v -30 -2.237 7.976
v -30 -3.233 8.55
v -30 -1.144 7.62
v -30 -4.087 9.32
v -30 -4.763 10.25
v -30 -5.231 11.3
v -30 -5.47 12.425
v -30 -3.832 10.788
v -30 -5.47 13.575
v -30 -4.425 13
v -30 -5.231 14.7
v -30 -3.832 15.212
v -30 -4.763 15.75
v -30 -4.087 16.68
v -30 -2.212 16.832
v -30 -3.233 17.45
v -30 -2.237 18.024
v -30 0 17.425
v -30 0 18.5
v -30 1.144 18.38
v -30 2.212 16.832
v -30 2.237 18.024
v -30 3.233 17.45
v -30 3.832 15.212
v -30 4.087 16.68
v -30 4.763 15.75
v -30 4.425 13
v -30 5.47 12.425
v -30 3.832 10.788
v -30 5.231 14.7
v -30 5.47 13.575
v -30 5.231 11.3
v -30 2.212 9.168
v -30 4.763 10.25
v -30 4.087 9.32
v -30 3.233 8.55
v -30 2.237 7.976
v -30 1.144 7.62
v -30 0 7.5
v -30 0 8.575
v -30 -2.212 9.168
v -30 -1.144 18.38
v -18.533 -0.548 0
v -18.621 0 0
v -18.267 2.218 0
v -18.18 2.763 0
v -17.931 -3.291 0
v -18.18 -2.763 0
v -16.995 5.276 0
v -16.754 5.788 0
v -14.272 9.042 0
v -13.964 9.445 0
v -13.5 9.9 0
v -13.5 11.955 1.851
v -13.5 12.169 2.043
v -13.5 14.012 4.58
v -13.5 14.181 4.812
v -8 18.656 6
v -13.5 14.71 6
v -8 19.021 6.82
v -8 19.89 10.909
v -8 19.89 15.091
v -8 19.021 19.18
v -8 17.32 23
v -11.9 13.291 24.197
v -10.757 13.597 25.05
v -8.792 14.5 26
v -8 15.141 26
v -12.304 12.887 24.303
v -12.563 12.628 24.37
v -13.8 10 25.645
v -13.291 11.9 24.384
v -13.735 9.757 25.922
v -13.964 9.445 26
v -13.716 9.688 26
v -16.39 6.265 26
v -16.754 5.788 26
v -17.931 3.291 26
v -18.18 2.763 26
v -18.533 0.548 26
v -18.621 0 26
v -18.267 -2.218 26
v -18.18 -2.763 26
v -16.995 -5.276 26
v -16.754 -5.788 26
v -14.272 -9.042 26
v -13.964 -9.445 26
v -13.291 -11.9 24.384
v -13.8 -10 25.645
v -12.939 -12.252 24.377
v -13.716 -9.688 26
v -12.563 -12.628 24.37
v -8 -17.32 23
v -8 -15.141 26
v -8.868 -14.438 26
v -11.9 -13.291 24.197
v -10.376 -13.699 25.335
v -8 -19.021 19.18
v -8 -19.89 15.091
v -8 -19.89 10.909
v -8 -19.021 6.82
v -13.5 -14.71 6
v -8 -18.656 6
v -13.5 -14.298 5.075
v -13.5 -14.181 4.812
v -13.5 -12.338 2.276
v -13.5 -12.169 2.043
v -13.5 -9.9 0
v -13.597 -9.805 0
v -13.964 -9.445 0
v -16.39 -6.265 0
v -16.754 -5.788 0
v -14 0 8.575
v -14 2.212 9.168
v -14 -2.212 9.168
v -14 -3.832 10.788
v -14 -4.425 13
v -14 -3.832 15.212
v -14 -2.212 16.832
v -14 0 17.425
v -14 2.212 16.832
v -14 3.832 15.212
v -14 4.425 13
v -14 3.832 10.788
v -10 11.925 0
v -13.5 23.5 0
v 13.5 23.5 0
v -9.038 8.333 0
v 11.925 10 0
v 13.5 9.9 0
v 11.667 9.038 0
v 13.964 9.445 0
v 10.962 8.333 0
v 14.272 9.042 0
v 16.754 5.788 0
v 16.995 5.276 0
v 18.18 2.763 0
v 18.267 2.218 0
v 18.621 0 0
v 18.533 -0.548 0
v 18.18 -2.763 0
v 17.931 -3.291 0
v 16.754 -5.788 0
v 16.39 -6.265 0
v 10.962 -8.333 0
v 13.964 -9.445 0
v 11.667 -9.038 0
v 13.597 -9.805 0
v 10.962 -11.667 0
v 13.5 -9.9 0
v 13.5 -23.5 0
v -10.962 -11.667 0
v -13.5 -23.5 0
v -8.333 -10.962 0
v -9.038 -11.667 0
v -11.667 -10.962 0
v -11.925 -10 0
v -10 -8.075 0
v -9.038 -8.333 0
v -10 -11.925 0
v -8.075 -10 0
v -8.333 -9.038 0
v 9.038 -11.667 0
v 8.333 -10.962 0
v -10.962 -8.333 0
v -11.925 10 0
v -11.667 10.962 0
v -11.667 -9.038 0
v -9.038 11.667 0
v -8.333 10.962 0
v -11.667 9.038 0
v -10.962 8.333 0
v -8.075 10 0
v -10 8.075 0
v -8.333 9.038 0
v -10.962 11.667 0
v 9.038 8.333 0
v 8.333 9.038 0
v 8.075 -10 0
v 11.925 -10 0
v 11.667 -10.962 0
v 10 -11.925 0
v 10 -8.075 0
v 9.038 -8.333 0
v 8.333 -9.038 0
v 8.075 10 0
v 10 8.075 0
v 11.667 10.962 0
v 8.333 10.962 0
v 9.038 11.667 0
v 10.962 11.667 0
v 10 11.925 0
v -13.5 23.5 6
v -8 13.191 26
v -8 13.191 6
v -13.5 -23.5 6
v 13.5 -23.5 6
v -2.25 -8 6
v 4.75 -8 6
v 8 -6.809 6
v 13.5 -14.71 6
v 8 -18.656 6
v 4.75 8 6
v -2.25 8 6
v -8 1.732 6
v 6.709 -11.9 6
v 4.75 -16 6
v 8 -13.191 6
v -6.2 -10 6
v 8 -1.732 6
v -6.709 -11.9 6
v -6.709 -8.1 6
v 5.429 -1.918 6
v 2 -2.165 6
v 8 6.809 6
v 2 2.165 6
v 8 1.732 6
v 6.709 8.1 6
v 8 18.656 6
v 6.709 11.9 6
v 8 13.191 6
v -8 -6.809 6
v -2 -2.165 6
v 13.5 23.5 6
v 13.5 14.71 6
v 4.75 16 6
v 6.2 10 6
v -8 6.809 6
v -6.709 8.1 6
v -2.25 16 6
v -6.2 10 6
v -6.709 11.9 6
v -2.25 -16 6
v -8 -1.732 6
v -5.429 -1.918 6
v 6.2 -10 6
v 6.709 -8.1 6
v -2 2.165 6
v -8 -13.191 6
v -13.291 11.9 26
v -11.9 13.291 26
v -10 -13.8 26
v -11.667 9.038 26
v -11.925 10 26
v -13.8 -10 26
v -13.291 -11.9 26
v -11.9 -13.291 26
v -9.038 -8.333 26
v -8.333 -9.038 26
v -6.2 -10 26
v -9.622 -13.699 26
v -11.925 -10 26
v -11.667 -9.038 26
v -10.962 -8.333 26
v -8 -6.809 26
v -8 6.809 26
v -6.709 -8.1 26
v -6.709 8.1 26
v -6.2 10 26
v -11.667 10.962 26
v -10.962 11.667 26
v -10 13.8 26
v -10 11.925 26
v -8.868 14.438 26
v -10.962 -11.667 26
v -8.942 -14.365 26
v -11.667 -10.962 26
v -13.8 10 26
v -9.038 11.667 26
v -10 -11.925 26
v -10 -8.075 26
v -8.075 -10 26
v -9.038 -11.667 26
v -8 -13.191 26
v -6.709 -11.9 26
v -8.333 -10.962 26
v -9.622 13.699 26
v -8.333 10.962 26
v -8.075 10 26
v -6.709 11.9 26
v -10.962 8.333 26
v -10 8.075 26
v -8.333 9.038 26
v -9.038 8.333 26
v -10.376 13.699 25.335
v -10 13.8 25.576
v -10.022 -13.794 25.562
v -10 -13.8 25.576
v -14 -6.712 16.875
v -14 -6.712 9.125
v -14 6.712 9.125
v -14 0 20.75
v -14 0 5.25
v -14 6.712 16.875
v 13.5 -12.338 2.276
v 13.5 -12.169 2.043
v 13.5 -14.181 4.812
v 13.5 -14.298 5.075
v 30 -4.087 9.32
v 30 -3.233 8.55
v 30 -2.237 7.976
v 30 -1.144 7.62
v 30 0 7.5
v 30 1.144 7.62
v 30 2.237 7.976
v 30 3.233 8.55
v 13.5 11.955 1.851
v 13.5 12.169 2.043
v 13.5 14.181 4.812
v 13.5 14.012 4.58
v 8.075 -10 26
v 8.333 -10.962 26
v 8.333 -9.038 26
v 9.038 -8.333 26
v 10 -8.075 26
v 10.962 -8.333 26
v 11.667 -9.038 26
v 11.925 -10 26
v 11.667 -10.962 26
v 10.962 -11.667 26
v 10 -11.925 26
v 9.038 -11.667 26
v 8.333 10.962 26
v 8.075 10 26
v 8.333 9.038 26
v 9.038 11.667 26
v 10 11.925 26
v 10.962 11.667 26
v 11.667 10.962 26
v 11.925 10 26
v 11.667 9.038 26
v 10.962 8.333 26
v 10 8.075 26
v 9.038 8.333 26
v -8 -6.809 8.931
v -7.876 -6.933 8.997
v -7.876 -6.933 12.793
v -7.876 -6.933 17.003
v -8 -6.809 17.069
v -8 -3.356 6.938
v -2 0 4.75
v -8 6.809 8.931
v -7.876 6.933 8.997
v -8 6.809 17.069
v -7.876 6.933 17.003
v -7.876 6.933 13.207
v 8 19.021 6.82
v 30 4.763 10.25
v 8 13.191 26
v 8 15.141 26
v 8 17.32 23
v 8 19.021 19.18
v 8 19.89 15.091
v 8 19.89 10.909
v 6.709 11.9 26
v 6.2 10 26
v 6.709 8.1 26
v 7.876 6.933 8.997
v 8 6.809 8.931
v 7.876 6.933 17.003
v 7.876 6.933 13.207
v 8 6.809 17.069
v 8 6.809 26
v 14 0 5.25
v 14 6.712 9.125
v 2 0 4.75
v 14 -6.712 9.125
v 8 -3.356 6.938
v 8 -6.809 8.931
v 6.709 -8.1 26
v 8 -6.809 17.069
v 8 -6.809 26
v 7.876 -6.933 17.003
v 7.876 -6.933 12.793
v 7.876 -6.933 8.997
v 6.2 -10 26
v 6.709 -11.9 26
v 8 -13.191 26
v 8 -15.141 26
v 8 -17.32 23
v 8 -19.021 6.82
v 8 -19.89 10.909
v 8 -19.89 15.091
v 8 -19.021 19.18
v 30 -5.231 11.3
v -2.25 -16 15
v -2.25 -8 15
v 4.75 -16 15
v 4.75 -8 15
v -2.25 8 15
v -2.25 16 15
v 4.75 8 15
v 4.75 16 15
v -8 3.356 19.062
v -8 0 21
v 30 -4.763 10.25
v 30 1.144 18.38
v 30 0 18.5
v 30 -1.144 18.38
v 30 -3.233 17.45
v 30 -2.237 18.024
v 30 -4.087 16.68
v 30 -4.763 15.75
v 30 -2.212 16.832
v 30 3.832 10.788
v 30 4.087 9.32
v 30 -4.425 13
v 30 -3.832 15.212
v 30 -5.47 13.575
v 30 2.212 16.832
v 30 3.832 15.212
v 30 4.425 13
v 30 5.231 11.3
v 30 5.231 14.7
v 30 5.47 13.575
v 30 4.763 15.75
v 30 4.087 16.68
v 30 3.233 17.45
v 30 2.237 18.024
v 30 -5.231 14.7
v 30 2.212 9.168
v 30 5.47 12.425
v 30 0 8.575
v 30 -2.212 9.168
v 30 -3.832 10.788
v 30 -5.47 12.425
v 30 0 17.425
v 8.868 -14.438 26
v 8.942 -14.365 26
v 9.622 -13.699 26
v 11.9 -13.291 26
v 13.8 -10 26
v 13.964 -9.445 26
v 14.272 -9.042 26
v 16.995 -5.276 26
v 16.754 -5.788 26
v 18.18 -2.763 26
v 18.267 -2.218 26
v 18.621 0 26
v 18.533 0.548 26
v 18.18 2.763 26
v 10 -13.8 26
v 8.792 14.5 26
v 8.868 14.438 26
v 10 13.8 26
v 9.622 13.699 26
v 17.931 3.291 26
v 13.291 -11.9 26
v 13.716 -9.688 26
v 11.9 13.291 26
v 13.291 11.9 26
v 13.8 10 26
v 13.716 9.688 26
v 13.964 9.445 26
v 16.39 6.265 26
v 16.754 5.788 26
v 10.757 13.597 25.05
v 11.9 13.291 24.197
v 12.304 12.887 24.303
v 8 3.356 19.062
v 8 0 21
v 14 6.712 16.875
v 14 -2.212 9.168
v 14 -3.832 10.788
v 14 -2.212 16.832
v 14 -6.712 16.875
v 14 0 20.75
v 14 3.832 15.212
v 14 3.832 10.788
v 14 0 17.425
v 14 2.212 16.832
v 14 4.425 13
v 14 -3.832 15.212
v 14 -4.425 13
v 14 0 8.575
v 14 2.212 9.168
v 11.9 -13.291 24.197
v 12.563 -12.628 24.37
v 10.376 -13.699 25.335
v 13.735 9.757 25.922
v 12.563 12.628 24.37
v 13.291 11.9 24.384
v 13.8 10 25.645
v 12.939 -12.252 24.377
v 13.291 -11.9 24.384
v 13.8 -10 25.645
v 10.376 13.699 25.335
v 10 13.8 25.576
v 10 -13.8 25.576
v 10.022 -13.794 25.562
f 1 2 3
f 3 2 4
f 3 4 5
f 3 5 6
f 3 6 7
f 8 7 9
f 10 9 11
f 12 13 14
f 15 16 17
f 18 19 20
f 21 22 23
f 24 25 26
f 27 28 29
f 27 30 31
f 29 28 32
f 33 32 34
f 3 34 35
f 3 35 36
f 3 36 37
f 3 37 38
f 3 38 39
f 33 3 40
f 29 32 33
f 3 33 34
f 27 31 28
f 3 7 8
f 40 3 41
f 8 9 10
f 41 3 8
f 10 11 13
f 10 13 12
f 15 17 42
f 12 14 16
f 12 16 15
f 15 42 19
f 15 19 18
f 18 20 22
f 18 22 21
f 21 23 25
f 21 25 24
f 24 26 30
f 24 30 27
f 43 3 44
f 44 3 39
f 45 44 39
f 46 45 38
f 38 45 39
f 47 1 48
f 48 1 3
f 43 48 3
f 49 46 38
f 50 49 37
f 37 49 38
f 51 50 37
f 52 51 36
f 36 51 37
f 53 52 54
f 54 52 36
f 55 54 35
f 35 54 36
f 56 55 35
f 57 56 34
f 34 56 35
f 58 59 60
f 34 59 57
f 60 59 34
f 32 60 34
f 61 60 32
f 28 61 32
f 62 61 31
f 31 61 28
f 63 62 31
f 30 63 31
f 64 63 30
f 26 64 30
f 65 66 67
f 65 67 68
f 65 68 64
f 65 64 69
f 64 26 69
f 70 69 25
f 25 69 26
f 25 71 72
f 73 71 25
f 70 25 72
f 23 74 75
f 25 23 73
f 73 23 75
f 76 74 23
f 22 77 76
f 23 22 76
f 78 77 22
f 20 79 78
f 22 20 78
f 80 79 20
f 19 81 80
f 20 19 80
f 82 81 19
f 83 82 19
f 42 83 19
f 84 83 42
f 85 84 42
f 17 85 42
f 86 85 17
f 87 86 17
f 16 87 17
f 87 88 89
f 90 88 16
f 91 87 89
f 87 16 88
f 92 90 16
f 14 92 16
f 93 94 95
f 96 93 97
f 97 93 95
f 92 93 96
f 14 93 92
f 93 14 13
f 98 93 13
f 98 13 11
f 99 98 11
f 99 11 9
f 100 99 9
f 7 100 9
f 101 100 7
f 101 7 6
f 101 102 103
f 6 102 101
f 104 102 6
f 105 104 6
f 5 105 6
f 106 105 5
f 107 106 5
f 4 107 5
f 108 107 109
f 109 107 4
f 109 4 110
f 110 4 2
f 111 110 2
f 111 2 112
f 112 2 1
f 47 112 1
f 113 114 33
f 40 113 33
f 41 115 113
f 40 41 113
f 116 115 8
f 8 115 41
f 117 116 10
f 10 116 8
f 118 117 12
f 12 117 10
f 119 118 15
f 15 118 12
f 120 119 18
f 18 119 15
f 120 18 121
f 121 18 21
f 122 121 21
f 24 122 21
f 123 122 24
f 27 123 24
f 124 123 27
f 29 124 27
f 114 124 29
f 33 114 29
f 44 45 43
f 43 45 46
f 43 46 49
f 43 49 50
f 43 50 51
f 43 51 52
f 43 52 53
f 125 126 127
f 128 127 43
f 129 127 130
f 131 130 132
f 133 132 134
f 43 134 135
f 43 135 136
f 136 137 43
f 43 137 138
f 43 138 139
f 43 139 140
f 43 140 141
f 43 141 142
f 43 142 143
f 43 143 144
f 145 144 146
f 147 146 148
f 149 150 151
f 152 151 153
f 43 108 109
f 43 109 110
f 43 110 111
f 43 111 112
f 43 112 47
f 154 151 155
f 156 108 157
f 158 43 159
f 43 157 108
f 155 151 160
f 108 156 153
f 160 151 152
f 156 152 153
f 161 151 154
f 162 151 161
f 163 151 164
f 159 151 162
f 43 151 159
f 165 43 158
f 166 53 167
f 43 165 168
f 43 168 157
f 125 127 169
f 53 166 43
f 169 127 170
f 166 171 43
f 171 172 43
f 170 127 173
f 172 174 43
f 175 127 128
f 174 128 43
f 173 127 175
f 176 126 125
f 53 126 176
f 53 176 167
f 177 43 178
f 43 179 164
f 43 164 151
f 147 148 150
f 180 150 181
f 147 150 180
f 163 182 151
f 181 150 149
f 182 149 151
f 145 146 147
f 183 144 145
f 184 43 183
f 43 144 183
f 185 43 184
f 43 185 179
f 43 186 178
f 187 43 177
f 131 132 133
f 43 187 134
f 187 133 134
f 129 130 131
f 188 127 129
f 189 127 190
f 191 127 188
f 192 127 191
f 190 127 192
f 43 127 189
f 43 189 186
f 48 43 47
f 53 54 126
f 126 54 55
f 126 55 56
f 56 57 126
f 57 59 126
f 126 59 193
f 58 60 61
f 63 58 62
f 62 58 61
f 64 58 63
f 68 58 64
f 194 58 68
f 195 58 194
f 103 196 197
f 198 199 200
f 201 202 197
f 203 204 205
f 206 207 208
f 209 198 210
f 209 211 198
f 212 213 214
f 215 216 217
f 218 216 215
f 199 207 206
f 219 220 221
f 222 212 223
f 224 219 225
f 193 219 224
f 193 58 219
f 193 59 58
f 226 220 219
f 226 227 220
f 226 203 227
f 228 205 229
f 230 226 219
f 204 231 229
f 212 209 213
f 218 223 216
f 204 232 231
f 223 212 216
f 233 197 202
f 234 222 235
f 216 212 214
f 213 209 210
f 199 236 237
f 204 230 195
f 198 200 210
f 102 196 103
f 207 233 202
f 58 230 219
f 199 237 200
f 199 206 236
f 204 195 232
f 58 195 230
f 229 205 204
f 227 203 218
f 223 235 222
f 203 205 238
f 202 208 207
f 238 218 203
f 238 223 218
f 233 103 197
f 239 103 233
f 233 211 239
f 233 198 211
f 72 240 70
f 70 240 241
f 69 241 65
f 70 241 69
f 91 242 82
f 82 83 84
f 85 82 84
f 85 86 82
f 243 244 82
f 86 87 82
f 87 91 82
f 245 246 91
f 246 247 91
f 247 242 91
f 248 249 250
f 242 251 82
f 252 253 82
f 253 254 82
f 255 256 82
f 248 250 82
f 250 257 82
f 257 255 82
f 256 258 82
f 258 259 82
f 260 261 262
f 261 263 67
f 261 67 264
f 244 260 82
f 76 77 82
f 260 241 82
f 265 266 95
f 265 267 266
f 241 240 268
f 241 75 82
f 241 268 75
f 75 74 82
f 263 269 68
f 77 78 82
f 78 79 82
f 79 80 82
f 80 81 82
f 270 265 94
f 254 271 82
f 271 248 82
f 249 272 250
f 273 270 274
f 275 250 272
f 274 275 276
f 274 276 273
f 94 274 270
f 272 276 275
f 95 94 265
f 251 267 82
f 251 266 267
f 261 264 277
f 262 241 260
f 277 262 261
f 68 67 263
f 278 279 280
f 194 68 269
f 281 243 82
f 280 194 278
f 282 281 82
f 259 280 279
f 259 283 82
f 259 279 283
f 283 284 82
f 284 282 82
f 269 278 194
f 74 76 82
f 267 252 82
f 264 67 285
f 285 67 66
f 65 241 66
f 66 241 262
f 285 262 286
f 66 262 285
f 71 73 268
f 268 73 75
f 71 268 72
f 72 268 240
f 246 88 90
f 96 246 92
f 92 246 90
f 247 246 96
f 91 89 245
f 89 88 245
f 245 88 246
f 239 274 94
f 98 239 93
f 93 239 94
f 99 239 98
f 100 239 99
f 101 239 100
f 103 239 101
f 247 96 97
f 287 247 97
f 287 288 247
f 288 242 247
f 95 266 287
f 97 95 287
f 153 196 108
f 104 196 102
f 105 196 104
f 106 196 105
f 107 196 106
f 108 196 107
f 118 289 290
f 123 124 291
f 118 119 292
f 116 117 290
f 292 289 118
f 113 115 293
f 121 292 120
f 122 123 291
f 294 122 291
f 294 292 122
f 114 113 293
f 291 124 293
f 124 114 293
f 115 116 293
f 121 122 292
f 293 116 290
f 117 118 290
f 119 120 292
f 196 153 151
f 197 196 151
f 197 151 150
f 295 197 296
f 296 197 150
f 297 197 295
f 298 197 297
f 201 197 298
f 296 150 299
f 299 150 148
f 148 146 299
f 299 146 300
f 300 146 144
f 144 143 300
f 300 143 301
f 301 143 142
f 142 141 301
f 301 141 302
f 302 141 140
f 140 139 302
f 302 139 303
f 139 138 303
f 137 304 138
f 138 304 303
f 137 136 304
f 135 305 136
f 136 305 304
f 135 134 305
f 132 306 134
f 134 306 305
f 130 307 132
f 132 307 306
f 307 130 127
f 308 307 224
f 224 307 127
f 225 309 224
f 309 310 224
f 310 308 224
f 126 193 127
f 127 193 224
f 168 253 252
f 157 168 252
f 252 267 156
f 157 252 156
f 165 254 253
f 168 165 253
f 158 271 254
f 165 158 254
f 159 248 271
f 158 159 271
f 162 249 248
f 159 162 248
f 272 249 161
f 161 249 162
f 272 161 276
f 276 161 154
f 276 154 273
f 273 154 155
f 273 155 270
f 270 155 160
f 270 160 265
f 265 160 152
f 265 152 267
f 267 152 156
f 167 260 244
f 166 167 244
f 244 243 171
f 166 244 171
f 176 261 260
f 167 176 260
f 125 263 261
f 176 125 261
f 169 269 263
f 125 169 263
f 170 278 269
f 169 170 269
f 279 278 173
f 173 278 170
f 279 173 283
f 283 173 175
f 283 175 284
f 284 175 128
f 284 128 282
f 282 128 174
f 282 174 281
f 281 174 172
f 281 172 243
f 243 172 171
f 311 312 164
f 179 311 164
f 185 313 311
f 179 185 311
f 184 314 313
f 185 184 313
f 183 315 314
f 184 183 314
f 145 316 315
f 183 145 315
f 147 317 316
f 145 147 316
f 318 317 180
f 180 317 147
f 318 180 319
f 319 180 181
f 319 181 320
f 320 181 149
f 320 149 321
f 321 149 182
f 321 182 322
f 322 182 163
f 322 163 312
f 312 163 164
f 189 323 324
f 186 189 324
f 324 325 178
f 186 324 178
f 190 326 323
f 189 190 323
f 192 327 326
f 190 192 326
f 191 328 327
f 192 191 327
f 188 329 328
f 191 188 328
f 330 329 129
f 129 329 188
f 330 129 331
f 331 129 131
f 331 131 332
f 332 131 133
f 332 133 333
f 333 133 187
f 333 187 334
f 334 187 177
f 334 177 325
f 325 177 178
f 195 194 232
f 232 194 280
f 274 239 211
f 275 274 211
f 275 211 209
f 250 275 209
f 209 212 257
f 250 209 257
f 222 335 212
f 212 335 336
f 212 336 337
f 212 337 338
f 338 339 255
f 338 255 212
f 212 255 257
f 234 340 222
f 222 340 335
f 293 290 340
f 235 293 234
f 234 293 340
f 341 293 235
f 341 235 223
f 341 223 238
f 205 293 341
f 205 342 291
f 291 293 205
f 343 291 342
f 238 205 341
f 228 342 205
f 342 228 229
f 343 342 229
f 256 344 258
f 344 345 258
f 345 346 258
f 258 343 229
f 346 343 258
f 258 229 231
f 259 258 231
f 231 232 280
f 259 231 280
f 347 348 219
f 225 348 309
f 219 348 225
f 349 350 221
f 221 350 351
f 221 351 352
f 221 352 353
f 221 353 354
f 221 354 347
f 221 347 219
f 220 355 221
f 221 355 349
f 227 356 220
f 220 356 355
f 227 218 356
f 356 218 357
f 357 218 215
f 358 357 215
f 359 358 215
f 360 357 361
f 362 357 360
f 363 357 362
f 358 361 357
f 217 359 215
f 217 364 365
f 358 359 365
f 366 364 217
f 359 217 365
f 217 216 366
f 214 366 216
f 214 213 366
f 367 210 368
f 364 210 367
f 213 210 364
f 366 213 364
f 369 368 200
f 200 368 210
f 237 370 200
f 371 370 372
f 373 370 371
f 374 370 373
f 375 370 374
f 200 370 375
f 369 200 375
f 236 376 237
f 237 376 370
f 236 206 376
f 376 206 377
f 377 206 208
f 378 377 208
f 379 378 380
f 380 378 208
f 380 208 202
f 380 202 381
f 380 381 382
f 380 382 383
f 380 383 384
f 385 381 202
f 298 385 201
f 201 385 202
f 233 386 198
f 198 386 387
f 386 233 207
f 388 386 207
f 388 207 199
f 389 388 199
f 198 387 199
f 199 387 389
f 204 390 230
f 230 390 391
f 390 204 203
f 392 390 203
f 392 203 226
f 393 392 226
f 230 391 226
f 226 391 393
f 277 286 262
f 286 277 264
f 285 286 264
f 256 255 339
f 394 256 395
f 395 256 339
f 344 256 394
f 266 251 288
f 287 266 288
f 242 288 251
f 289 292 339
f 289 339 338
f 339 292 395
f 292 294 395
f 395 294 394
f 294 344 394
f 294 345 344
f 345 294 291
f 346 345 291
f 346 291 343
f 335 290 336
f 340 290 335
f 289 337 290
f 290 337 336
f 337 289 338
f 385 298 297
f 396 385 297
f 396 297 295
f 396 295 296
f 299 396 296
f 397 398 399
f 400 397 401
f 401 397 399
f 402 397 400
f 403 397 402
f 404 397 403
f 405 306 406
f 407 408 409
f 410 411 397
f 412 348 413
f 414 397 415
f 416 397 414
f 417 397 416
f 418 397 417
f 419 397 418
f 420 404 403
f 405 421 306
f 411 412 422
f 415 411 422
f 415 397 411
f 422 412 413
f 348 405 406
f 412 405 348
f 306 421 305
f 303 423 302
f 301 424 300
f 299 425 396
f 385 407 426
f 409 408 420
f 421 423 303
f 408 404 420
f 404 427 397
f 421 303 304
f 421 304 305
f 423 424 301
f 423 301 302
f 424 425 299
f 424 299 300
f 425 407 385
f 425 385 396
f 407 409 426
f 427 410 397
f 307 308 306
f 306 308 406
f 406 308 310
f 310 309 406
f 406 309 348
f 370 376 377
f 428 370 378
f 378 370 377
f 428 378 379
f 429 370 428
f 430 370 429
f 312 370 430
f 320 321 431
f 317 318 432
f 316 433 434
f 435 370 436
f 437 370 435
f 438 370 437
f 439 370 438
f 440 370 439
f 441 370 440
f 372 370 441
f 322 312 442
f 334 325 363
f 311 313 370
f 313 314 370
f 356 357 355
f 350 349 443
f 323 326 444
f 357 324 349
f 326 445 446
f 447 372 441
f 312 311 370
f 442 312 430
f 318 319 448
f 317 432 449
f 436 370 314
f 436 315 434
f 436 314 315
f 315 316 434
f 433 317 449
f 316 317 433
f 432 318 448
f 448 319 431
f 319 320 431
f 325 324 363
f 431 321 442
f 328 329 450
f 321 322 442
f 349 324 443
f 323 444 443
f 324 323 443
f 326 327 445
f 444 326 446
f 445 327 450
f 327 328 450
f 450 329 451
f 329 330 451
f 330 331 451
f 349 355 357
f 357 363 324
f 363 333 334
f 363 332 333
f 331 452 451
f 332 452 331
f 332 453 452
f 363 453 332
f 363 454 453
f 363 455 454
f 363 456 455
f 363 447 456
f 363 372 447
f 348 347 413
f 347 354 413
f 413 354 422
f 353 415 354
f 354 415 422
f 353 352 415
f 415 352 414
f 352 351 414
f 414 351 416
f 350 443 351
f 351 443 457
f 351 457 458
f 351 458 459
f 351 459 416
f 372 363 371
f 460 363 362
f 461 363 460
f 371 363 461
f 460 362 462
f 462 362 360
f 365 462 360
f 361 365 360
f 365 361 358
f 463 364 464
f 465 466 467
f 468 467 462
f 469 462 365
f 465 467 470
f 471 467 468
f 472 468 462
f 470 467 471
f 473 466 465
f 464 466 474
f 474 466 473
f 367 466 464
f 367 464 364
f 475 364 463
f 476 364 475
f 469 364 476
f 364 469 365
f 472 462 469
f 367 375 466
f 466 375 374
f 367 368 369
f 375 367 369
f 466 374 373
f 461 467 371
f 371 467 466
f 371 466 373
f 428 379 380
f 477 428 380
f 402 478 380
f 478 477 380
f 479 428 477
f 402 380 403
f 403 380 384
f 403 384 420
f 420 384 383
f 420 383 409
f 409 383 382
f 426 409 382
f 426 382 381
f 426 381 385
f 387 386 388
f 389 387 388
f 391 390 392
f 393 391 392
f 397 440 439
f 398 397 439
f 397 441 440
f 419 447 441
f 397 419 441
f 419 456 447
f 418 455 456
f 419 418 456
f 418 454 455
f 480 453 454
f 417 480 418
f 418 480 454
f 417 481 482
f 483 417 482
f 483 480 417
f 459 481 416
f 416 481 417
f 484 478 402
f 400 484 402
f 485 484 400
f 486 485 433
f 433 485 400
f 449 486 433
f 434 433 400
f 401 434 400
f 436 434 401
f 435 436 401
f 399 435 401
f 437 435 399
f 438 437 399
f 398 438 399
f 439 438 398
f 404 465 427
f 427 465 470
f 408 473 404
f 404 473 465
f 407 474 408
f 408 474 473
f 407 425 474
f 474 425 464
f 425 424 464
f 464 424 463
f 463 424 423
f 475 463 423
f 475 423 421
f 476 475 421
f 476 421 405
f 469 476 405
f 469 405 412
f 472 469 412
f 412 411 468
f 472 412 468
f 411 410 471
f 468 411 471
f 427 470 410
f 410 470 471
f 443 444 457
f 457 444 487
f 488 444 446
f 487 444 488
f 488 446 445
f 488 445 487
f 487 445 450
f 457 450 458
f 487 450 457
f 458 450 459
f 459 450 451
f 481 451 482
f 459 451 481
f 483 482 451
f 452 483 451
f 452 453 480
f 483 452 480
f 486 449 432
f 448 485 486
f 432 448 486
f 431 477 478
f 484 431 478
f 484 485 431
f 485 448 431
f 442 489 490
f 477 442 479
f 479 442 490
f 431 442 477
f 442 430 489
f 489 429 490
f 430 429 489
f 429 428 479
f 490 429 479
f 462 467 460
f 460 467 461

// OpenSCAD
//include <configuration.scad>;
// Increase this if your slicer or printer make holes too tight.
extra_radius = 0.3;
// OD = outside diameter, corner to corner.
m3_nut_od = 6.1;
m3_nut_radius = m3_nut_od/2 + 0.2 + extra_radius;
m3_washer_radius = 3.5 + extra_radius;

// Major diameter of metric 3mm thread.
m3_major = 2.85;
m3_radius = m3_major/2 + extra_radius;
m3_wide_radius = m3_major/2 + extra_radius + 0.2;

// OD = outside diameter, corner to corner.
m8_nut_od = 14.5;
m8_nut_radius = m8_nut_od/2 + 0.2 + extra_radius;
m8_washer_radius = 8.5 + extra_radius;

// Major diameter of metric 3mm thread.
m8_major = 7.85;
m8_radius = m8_major/2 + extra_radius;
m8_wide_radius = m8_major/2 + extra_radius + 0.2;

separation = 60;
thickness = 6;

horn_thickness = 26;
horn_x = 8;

belt_width = 5;
belt_x = 5.6;
belt_z = 7;

module carriage() {
  // Timing belt (up and down).
  translate([-belt_x, 0, belt_z + belt_width/2]) %
    cube([1.7, 100, belt_width], center=true);
  translate([belt_x, 0, belt_z + belt_width/2]) %
    cube([1.7, 100, belt_width], center=true);
  difference() {
    union() {
      // Main body.
      translate([0, 0, thickness/2])
        cube([27, 47, thickness], center=true);
      // Ball joint mount horns.
      for (x = [-1, 1]) {
        scale([x, 1, 1]) intersection() {
          translate([10, 0, (horn_thickness/2)])
            cube([separation, 46.4, horn_thickness], center=true);
          translate([horn_x, 0, (horn_thickness/2)]) rotate([0, 90, 0])
            cylinder(r1=20, r2=5.5, h=separation/2-horn_x);
        }
      }

      for (x = [-10, 10]) {
      for (y = [-10, 10]) {
        translate([x, y, thickness]) {
          //% cylinder(r=m3_wide_radius, h=50, center=true, $fn=12);
          cylinder(r=m3_washer_radius, h=horn_thickness-thickness, center=false, $fn=12);
          }
      }
    }


      // Belt clamps.
      difference() {
        //union() {
        //  translate([6.5, -15, horn_thickness/2+1])
        //    cube([14, 10, horn_thickness-2], center=true);
        //  translate([10.75, 2.5, horn_thickness/2+1])
        //    cube([5.5, 16, horn_thickness-2], center=true);
        //}
        // Avoid touching diagonal push rods (carbon tube).
        //translate([20, -10, 12.5]) rotate([35, 35, 30])
        //  cube([40, 40, 20], center=true);
      }
      for (y = [-12, 12]) {
        translate([1.25, y, horn_thickness/2-5])
          cube([7, 8, horn_thickness-12], center=true);
      }
    }
    // Screws for linear slider.
    for (x = [-10, 10]) {
      for (y = [-10, 10]) {
        translate([x, y, thickness]) {
          cylinder(r=m3_wide_radius, h=50, center=true, $fn=12);
          //#cylinder(r=m3_washer_radius, h=horn_thickness-thickness+1, center=false, $fn=12);
          }
      }
    }
    // Screws for ball joints.
    translate([0, 0, horn_thickness/2]) rotate([0, 90, 0]) 
      cylinder(r=m8_wide_radius, h=80, center=true, $fn=12);
    // Lock nuts for ball joints.
    for (x = [-1, 1]) {
      scale([x, 1, 1]) intersection() {
        translate([horn_x, 0, horn_thickness/2]) rotate([90, 30, -90])
          cylinder(r1=m8_nut_radius, r2=m8_nut_radius+0.5, h=12,
                   center=true, $fn=6);
      }
    }
  }
}

carriage();
